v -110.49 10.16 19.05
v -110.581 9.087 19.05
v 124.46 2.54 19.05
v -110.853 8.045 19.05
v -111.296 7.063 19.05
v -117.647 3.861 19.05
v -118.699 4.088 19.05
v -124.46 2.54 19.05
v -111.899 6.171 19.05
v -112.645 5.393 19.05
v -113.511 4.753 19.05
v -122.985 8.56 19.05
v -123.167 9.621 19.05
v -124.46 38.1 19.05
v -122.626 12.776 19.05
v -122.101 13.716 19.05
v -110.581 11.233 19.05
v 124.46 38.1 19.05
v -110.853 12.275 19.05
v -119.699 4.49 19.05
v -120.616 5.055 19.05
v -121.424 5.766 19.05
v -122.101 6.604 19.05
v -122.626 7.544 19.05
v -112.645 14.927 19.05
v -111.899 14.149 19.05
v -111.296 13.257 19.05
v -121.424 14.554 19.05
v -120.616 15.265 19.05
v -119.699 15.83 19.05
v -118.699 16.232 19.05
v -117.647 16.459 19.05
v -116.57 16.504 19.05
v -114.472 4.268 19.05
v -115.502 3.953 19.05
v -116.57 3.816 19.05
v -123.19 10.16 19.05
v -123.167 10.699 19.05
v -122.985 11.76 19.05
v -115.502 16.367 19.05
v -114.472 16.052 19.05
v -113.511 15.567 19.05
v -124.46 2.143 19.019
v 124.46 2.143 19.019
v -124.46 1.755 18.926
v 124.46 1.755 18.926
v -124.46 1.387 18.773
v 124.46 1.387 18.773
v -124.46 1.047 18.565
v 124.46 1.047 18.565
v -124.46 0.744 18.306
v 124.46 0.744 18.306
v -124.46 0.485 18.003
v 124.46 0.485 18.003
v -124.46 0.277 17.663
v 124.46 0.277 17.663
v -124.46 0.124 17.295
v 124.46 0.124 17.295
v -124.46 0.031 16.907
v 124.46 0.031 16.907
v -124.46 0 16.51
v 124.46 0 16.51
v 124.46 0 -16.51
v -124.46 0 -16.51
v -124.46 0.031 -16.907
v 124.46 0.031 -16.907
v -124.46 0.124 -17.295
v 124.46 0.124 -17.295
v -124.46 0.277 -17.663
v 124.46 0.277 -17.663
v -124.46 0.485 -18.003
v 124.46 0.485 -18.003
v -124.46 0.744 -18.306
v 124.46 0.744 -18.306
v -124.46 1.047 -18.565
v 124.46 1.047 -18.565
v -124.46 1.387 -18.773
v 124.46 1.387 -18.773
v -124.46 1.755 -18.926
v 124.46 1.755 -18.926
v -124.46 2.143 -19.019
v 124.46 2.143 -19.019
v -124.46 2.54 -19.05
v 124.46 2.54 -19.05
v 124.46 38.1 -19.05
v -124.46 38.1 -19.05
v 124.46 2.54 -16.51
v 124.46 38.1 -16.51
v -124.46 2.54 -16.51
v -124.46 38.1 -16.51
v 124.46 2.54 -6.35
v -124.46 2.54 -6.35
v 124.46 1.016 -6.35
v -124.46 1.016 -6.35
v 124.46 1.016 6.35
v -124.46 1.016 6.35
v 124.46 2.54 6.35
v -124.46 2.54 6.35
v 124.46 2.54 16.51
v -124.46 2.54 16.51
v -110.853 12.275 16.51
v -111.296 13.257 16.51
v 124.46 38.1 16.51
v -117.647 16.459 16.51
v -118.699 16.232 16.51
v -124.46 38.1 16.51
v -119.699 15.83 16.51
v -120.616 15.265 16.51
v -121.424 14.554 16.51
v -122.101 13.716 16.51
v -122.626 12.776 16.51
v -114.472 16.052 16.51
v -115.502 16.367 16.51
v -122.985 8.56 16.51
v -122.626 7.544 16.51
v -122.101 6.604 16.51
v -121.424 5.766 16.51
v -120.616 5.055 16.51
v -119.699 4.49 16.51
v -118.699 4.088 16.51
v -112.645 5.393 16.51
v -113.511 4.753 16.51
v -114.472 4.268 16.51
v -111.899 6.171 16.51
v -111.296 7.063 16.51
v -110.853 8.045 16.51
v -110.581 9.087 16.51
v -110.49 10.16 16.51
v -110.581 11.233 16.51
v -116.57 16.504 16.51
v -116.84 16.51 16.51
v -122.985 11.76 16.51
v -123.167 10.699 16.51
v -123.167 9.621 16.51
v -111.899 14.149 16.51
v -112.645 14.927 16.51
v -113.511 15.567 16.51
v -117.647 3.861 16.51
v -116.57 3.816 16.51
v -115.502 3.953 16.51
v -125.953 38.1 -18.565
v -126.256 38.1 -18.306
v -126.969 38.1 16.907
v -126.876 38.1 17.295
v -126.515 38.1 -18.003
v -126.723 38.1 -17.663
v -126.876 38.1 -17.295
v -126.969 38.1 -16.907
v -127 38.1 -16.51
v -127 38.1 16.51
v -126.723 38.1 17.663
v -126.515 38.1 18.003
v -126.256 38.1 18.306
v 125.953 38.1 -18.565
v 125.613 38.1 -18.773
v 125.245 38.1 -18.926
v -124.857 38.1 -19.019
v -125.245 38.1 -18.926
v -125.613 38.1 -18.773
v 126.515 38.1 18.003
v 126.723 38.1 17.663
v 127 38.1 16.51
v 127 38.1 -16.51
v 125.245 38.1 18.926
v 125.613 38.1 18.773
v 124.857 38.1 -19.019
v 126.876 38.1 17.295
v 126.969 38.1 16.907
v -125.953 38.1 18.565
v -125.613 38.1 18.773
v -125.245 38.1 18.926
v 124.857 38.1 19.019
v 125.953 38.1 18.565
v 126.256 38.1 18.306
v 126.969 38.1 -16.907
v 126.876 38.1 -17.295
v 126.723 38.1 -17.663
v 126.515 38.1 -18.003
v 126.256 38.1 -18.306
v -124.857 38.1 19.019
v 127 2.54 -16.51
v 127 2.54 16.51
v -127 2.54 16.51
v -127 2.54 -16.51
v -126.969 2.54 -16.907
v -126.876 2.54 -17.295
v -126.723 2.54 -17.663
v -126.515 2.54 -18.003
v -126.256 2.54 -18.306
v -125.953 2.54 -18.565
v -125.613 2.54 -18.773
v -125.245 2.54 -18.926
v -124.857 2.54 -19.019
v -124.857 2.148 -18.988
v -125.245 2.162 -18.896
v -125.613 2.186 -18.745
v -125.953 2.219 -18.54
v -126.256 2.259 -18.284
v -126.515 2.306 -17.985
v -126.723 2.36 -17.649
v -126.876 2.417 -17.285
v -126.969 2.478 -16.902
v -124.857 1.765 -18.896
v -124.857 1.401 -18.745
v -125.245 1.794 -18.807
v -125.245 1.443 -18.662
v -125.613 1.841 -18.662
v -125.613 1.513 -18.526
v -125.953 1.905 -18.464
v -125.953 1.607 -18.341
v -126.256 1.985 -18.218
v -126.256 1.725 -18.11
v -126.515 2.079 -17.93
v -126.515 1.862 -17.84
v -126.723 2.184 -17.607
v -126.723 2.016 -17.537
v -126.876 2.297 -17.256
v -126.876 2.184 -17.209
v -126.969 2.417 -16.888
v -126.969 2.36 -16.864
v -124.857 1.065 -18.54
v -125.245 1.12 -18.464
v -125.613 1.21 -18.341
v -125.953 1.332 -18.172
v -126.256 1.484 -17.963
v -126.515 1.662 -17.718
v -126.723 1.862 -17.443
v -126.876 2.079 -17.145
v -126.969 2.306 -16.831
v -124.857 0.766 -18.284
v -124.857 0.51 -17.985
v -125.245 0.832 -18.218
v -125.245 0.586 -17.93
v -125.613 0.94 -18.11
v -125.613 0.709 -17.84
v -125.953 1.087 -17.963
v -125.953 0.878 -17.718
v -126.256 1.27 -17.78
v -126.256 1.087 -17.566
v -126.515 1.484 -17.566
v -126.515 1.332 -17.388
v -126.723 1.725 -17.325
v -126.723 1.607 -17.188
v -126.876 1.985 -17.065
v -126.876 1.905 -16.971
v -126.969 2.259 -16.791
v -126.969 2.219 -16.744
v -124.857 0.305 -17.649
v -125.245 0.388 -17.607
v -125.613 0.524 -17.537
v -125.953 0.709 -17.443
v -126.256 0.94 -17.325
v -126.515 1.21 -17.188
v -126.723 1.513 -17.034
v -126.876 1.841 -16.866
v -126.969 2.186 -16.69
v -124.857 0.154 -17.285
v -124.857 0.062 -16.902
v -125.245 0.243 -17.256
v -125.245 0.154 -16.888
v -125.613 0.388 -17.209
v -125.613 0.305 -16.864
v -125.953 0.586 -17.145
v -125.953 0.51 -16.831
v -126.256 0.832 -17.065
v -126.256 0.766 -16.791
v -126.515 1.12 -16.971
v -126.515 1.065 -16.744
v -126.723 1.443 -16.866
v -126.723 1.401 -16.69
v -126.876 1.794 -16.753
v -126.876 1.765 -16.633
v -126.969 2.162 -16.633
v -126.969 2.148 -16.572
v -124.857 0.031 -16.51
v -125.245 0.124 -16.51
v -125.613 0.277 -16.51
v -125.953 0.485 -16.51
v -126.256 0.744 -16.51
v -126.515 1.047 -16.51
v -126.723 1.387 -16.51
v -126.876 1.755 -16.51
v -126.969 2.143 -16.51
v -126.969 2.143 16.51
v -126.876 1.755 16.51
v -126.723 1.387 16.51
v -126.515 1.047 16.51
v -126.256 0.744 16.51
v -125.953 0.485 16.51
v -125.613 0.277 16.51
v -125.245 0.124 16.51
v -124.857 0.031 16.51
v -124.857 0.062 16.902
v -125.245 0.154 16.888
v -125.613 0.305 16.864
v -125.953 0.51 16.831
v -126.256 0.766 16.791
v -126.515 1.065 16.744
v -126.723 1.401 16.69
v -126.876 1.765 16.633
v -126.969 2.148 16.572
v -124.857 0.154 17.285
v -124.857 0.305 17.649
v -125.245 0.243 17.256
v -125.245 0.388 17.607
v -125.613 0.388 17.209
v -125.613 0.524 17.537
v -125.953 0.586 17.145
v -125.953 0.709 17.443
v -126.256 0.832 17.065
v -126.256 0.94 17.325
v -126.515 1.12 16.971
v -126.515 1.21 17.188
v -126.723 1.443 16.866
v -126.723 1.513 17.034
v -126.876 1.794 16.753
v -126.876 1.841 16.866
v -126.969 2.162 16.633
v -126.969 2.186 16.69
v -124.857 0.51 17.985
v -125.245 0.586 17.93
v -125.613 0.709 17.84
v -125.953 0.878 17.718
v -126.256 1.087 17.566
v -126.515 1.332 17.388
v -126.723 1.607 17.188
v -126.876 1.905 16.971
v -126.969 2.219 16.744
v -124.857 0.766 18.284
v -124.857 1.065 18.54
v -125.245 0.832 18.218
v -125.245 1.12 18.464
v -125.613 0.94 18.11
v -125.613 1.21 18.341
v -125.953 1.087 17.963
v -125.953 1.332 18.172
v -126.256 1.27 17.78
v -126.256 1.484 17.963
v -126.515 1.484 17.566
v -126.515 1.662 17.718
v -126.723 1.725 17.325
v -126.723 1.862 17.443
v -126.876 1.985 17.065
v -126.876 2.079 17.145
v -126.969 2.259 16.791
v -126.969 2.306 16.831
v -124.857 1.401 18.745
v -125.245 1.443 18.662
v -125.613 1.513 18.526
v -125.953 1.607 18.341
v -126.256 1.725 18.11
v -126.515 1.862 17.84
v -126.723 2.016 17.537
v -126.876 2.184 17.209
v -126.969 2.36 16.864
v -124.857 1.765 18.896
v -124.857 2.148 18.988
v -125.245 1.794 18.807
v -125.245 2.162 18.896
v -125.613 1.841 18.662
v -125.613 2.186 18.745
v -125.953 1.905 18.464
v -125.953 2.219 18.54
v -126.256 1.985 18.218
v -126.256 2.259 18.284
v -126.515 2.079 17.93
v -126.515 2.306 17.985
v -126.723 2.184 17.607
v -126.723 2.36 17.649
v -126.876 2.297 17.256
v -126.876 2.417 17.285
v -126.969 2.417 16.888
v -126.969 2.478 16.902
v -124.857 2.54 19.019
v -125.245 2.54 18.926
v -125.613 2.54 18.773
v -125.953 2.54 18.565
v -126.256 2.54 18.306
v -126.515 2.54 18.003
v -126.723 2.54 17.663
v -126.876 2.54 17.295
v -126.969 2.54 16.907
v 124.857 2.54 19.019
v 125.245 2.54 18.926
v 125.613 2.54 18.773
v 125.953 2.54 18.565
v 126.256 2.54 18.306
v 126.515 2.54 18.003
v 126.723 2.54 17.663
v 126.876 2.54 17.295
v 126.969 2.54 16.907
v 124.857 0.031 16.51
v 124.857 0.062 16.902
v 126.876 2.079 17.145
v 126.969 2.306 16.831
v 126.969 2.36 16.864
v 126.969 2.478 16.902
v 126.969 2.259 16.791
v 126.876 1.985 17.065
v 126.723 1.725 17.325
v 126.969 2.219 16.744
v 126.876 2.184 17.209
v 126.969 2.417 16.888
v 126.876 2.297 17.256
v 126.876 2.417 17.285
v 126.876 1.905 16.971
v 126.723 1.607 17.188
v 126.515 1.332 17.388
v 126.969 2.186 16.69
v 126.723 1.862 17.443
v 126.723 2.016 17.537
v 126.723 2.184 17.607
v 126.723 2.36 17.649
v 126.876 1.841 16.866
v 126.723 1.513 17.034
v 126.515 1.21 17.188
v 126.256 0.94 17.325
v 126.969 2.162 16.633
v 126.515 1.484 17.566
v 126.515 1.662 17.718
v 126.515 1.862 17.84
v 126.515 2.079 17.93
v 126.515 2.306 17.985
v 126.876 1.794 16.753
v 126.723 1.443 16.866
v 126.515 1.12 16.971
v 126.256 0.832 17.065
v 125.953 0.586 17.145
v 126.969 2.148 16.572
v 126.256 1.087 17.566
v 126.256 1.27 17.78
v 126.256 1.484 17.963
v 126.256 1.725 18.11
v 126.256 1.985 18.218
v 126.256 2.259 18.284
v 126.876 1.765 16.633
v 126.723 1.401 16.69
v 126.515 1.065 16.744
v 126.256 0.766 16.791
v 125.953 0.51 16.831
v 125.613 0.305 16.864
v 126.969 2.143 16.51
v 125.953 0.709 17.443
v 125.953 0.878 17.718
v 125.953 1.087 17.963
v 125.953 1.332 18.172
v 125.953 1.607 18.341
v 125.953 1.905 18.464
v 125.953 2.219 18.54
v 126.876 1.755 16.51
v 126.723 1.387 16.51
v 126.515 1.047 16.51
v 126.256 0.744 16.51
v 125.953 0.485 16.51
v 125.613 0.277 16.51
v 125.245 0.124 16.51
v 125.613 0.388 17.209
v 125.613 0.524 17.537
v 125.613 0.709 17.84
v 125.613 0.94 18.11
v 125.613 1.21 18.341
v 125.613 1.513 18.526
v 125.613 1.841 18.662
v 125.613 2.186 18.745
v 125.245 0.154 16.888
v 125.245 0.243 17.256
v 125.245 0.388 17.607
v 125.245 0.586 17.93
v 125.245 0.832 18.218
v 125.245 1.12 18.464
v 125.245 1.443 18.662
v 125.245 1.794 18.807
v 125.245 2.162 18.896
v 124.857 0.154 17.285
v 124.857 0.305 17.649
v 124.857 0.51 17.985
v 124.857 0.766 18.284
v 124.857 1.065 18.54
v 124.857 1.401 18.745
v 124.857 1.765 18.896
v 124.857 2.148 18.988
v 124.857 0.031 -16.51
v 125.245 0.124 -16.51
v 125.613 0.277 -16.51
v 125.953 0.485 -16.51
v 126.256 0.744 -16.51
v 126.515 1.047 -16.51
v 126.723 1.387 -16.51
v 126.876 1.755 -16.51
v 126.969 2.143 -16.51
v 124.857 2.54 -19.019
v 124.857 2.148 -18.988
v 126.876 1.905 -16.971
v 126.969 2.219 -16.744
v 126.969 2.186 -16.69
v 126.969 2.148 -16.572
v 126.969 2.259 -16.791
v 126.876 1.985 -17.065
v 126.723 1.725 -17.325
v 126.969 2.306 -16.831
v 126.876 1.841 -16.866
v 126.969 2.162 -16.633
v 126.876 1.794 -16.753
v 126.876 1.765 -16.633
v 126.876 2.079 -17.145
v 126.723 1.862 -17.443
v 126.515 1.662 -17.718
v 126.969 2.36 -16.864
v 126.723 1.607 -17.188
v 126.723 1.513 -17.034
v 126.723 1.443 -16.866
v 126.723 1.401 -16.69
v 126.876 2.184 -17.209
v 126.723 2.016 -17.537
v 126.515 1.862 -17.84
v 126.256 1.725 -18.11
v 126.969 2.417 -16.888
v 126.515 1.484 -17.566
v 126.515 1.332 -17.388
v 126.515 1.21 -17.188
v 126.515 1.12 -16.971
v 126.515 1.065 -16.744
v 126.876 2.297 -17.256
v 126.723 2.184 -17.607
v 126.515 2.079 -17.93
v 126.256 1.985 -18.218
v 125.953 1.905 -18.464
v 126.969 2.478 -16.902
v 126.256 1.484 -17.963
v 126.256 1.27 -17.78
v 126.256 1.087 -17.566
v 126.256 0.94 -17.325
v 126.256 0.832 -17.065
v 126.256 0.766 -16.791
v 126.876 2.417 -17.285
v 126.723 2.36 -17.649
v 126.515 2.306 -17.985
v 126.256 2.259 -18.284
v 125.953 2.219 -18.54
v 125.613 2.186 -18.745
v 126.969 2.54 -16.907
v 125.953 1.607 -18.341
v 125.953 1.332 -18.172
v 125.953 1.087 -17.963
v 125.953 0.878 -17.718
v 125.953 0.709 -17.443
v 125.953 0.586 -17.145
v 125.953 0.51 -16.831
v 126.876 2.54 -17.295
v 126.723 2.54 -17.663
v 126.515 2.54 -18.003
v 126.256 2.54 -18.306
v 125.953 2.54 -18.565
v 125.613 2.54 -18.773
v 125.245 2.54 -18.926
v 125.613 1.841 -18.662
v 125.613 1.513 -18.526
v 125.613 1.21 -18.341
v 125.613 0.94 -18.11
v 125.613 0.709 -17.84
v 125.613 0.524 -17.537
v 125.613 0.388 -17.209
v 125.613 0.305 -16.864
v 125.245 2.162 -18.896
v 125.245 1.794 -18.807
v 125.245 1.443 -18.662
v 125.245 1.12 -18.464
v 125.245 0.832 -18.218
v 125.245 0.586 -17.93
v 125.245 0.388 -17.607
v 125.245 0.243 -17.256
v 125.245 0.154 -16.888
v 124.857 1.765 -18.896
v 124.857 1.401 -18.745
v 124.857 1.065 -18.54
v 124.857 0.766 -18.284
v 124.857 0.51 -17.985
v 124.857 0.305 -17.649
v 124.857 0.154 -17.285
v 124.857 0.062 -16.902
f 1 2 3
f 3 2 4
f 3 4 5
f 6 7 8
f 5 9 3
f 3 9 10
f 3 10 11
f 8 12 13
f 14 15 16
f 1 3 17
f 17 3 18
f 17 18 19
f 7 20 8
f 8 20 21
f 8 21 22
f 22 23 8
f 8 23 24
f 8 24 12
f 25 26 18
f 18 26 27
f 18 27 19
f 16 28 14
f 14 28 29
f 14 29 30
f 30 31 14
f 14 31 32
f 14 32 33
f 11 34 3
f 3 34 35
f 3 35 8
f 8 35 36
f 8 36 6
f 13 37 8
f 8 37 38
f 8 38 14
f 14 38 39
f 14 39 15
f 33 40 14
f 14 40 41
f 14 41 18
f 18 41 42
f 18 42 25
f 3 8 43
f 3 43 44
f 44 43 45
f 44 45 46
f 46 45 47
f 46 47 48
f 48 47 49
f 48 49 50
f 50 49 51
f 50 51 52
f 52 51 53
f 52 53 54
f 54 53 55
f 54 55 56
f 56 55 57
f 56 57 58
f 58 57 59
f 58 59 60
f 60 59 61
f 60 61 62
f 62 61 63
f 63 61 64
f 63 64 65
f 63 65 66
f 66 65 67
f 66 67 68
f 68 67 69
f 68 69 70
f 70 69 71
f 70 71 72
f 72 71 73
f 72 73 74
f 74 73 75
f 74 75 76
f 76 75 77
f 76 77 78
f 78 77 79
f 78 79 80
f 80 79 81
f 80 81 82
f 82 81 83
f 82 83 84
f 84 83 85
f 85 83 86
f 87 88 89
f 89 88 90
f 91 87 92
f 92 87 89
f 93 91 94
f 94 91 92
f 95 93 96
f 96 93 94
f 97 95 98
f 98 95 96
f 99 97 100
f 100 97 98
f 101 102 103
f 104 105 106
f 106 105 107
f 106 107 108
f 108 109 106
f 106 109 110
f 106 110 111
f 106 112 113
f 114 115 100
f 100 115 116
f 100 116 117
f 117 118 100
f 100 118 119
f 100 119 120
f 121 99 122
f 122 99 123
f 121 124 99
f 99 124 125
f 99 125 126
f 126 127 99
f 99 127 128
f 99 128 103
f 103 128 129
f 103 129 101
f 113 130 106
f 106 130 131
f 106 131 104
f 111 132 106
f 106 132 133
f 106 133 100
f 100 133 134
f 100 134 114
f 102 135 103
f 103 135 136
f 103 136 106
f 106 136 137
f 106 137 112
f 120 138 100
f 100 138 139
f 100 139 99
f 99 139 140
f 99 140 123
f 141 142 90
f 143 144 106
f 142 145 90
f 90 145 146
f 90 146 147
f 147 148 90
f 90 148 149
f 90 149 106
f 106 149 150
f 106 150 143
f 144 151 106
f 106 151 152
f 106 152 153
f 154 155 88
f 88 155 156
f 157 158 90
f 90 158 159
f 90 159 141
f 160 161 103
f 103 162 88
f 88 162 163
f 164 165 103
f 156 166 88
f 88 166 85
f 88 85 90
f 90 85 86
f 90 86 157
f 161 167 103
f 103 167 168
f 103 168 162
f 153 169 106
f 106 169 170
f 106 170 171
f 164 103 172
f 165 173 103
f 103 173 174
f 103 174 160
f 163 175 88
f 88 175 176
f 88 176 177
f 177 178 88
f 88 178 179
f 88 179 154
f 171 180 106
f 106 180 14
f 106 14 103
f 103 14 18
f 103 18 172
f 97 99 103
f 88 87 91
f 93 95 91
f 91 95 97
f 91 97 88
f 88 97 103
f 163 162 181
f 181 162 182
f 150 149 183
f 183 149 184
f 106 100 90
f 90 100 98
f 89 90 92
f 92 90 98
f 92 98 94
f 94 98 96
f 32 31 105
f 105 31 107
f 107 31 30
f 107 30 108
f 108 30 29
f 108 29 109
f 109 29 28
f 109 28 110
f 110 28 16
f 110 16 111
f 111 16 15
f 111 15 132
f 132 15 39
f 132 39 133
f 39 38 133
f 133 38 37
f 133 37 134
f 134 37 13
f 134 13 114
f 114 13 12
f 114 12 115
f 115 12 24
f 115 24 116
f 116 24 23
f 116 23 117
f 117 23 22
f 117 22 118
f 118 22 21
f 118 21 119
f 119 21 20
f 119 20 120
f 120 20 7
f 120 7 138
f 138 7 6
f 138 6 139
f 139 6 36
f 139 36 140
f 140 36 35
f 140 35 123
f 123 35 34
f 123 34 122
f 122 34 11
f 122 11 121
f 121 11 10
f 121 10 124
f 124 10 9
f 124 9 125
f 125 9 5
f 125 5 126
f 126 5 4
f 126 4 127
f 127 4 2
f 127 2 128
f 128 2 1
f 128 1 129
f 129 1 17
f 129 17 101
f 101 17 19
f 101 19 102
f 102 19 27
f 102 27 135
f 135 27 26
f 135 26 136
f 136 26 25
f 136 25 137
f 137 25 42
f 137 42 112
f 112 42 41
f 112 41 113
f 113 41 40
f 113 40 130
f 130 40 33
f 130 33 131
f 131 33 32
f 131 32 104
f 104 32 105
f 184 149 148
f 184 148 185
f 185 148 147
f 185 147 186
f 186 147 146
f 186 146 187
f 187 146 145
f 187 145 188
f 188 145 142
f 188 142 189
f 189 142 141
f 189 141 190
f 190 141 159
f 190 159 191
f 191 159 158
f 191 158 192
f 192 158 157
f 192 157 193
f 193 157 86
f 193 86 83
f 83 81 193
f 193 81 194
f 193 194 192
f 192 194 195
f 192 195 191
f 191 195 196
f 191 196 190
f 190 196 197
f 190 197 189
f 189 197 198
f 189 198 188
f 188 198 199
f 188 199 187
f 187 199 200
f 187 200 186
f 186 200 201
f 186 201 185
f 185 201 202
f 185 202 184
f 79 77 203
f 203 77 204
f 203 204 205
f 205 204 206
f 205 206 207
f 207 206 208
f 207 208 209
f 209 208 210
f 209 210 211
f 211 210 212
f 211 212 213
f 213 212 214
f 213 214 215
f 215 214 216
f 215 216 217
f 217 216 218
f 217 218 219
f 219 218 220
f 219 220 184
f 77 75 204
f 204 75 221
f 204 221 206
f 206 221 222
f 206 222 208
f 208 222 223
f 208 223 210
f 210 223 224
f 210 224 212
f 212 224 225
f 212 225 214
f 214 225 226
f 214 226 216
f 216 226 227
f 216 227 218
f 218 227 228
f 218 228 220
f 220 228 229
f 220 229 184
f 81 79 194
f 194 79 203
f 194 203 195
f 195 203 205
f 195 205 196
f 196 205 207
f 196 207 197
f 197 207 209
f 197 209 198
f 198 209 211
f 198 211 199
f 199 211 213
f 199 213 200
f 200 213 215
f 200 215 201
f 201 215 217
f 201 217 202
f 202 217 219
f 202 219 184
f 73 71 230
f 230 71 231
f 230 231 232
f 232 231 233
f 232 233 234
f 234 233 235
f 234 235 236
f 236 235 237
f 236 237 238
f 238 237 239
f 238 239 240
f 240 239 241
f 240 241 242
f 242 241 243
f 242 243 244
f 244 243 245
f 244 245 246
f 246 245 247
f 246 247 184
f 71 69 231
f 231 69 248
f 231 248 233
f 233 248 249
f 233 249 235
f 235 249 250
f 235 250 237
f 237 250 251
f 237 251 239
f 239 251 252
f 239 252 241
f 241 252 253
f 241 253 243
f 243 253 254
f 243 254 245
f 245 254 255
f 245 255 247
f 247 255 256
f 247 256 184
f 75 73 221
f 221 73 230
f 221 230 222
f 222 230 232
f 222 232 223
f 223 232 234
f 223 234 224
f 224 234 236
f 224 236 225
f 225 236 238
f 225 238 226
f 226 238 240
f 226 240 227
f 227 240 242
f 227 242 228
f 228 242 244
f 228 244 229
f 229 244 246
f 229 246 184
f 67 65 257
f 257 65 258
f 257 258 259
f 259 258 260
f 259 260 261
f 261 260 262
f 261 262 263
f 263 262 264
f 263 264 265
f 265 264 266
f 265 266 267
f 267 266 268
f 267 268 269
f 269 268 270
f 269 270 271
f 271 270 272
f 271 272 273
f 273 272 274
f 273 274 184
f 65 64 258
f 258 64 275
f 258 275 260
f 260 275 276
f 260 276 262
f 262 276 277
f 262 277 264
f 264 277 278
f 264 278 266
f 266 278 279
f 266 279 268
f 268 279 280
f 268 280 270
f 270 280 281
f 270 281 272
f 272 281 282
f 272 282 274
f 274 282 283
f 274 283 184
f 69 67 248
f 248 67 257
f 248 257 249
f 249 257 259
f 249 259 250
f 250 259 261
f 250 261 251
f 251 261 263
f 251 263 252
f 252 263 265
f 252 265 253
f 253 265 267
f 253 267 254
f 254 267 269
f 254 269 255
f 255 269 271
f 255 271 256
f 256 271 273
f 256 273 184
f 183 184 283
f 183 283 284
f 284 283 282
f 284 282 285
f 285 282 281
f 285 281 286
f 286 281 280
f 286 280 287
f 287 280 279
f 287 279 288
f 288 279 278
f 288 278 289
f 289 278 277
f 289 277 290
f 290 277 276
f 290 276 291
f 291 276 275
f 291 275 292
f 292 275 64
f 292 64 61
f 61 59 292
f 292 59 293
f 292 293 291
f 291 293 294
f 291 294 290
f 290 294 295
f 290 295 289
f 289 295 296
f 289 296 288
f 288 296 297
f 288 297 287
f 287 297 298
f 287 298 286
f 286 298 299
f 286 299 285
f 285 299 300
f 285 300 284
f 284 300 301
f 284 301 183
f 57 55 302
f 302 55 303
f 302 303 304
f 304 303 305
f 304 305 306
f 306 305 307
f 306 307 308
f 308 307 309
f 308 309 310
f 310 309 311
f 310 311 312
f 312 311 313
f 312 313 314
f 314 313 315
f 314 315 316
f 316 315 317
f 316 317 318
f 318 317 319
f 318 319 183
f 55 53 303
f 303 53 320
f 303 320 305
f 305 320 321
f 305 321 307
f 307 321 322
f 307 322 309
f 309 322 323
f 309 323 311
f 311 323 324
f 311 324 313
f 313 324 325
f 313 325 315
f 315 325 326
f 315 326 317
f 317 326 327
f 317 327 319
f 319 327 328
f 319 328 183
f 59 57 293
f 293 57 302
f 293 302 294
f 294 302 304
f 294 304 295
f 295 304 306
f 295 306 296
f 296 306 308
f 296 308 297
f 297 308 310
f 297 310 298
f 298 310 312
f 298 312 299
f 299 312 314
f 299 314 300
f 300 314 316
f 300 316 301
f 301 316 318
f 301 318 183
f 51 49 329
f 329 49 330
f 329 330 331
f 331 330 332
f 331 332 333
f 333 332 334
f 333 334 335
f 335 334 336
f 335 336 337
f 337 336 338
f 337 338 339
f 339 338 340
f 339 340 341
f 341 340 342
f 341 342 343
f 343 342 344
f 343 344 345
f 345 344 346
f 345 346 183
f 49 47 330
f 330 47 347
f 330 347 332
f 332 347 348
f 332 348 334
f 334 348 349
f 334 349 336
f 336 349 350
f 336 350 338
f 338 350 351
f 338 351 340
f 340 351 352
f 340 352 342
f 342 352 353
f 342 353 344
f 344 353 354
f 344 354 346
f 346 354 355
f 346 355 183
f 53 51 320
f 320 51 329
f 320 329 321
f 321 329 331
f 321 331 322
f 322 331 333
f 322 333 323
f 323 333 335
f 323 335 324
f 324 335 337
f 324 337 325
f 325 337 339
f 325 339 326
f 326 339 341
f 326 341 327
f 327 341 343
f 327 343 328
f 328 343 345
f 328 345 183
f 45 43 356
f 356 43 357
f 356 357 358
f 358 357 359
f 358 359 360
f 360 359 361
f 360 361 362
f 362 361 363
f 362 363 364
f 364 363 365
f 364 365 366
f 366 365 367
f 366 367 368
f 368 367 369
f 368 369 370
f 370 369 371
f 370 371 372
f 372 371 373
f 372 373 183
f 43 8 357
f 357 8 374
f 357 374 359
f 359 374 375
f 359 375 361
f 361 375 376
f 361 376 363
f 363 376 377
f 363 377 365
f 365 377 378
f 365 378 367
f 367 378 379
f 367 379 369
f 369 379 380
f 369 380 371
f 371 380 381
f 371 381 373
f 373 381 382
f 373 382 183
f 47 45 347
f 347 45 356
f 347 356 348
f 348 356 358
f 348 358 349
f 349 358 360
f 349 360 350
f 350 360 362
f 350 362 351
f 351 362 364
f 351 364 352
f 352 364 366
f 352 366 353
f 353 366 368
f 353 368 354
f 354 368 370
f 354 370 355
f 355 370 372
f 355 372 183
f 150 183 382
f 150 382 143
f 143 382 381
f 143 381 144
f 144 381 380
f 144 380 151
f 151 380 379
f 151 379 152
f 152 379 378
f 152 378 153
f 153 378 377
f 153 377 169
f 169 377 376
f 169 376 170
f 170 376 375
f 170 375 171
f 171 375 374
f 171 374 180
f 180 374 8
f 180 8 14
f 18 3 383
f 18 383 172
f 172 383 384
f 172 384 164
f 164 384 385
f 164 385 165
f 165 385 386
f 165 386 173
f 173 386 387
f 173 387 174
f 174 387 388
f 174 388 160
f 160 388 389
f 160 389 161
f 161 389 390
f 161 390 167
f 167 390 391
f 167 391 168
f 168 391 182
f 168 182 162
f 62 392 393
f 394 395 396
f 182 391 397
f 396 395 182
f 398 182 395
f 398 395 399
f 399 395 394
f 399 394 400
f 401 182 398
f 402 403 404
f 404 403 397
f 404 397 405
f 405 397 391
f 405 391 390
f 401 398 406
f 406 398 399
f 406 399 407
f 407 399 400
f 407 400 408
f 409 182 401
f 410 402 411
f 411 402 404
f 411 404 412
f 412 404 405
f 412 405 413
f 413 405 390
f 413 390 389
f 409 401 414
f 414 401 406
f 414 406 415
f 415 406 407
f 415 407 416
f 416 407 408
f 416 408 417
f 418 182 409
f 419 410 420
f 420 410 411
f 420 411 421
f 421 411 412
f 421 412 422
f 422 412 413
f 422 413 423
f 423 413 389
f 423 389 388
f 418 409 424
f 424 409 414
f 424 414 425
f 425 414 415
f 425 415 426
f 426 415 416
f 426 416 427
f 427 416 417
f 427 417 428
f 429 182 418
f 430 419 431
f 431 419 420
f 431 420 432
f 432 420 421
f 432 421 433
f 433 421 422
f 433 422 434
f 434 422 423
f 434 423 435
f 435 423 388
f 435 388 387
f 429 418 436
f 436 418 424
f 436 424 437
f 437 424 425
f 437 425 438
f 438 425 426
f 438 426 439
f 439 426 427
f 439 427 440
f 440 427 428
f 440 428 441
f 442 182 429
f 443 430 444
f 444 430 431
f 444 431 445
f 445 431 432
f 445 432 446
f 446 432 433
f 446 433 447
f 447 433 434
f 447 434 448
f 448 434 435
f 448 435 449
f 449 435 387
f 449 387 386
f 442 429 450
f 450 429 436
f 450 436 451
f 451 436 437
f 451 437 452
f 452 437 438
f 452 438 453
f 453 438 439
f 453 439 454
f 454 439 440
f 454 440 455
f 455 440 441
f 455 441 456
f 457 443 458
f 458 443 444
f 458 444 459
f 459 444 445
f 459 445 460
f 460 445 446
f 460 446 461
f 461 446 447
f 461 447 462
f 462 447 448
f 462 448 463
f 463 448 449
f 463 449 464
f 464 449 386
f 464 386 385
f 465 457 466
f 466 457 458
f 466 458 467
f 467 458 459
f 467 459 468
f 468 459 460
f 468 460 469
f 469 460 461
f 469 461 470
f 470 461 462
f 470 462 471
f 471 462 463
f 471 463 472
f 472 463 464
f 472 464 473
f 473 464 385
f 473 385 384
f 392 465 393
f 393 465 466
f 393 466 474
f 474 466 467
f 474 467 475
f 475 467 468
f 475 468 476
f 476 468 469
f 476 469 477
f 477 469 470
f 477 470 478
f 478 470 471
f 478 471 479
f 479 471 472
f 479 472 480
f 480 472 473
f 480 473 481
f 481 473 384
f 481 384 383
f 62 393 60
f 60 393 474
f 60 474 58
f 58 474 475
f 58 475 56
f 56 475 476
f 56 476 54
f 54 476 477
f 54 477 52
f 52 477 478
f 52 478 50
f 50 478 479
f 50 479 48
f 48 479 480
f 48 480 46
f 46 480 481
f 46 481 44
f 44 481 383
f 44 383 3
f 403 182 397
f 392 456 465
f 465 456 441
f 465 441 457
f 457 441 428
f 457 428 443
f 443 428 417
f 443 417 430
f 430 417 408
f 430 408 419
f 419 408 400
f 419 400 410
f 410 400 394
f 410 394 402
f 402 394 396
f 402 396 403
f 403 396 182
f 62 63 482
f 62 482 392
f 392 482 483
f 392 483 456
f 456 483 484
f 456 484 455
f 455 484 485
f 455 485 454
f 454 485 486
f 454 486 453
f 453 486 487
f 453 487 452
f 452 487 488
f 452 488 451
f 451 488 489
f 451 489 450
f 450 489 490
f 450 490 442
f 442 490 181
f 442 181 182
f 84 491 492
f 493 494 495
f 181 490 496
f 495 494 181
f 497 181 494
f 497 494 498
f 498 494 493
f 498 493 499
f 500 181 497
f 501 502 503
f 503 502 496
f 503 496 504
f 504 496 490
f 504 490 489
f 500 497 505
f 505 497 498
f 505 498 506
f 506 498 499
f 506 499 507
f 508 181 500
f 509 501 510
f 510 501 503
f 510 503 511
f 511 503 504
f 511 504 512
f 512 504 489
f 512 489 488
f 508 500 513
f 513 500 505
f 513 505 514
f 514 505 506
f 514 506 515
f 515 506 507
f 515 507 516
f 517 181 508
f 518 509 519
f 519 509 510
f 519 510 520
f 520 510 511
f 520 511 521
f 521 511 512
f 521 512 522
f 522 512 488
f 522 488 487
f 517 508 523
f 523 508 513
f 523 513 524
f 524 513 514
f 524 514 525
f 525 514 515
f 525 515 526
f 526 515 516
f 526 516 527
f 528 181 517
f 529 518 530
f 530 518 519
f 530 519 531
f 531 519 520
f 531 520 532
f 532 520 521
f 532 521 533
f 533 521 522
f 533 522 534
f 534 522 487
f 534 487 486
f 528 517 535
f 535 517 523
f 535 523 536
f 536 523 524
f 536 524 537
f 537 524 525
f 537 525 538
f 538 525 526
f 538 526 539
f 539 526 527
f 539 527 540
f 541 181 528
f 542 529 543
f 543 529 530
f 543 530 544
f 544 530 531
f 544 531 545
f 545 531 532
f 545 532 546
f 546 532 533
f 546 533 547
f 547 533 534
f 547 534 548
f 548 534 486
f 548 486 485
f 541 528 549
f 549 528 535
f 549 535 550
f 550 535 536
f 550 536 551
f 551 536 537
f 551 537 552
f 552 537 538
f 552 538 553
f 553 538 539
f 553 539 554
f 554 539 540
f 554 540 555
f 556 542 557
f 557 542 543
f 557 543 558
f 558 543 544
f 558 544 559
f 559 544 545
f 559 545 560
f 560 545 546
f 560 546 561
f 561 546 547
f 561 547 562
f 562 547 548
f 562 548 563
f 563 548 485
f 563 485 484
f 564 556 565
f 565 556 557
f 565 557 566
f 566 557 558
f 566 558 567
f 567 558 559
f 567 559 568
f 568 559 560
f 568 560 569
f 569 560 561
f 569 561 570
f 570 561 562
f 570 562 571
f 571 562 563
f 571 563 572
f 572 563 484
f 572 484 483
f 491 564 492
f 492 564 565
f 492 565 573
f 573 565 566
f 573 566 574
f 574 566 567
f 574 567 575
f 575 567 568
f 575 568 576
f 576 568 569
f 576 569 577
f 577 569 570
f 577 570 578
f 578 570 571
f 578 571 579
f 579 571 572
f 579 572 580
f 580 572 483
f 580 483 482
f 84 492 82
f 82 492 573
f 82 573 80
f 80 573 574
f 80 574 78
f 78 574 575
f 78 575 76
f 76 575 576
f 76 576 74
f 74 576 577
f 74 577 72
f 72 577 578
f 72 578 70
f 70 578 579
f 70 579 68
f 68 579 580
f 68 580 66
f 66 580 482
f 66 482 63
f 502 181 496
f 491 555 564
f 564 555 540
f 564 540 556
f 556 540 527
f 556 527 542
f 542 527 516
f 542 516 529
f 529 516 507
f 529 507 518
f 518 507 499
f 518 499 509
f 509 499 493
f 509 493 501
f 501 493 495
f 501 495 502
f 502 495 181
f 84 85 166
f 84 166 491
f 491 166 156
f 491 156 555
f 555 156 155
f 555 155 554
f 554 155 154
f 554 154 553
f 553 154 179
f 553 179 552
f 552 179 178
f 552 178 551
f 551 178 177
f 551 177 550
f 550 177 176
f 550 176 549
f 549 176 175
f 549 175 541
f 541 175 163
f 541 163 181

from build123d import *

# Parameters (mm, degrees)
BOSS_EXTRUDE1_DEPTH = 124.46
BOSS_EXTRUDE2_START = 127
BOSS_EXTRUDE2_DEPTH = 2.54
BOSS_EXTRUDE3_START = -124.46
BOSS_EXTRUDE3_DEPTH = 2.54
CUT_EXTRUDE1_START  = 19.05
SKETCH4_R           = 6.35
CUT_EXTRUDE1_DEPTH  = 2.54
FILLET1_R           = 2.54
FILLET2_R           = 2.54


with BuildPart() as part:
    # Sketch1 → Boss-Extrude1 (new, symmetric)
    with BuildSketch(Plane(origin=(0, 0, 0), x_dir=(0, 0, -1), z_dir=(1, 0, 0))):
        with BuildLine():
            Line((-16.51, 38.1), (-19.05, 38.1))
            Line((-19.05, 38.1), (-19.05, 2.54))
            ThreePointArc((-19.05, 2.54), (-18.306051224, 0.743948776), (-16.51, 0))
            Line((-16.51, 0), (0, 0))
            Line((0, 0), (0, 1.016))
            Line((0, 1.016), (-6.35, 1.016))
            Line((-6.35, 1.016), (-6.35, 2.54))
            Line((-6.35, 2.54), (-16.51, 2.54))
            Line((-16.51, 2.54), (-16.51, 38.1))
        make_face()
        with BuildLine():
            Line((0, 1.016), (0, 0))
            Line((0, 0), (16.51, 0))
            ThreePointArc((16.51, 0), (18.306051224, 0.743948776), (19.05, 2.54))
            Line((19.05, 2.54), (19.05, 38.1))
            Line((19.05, 38.1), (16.51, 38.1))
            Line((16.51, 38.1), (16.51, 2.54))
            Line((16.51, 2.54), (6.35, 2.54))
            Line((6.35, 2.54), (6.35, 1.016))
            Line((6.35, 1.016), (0, 1.016))
        make_face()
    extrude(amount=BOSS_EXTRUDE1_DEPTH, both=True)

    # Sketch3 → Boss-Extrude2 (add)
    with BuildSketch(Plane(origin=(0, 0, 0), x_dir=(0, 0, -1), z_dir=(1, 0, 0)).offset(BOSS_EXTRUDE2_START)):
        with BuildLine():
            Line((0, 38.1), (-19.05, 38.1))
            Line((-19.05, 38.1), (-19.05, 2.54))
            ThreePointArc((-19.05, 2.54), (-18.306051224, 0.743948776), (-16.51, 0))
            Line((-16.51, 0), (0, 0))
            Line((0, 0), (0, 38.1))
        make_face()
        with BuildLine():
            Line((19.05, 38.1), (0, 38.1))
            Line((0, 38.1), (0, 0))
            Line((0, 0), (16.51, 0))
            ThreePointArc((16.51, 0), (18.306051224, 0.743948776), (19.05, 2.54))
            Line((19.05, 2.54), (19.05, 38.1))
        make_face()
    extrude(amount=-BOSS_EXTRUDE2_DEPTH)

    # Sketch3<4> → Boss-Extrude3 (add)
    with BuildSketch(Plane(origin=(0, 0, 0), x_dir=(0, 0, -1), z_dir=(1, 0, 0)).offset(BOSS_EXTRUDE3_START)):
        with BuildLine():
            Line((0, 38.1), (-19.05, 38.1))
            Line((-19.05, 38.1), (-19.05, 2.54))
            ThreePointArc((-19.05, 2.54), (-18.306051224, 0.743948776), (-16.51, 0))
            Line((-16.51, 0), (0, 0))
            Line((0, 0), (0, 38.1))
        make_face()
        with BuildLine():
            Line((19.05, 38.1), (0, 38.1))
            Line((0, 38.1), (0, 0))
            Line((0, 0), (16.51, 0))
            ThreePointArc((16.51, 0), (18.306051224, 0.743948776), (19.05, 2.54))
            Line((19.05, 2.54), (19.05, 38.1))
        make_face()
    extrude(amount=-BOSS_EXTRUDE3_DEPTH)

    # Sketch4 → Cut-Extrude1 (cut)
    with BuildSketch(Plane.XY.offset(CUT_EXTRUDE1_START)):
        with Locations((-116.84, 10.16)):
            Circle(SKETCH4_R)
    extrude(amount=-CUT_EXTRUDE1_DEPTH, mode=Mode.SUBTRACT)

    # Fillet1
    fillet1_edges = [part.edges().sort_by_distance(p)[0] for p in [
        (-127, 0.743948776, -18.306051224),
        (-127, 0, 0),
        (-127, 0.743948776, 18.306051224),
        (-127, 20.32, 19.05),
        (-127, 20.32, -19.05),
    ]]
    fillet(fillet1_edges, radius=FILLET1_R)

    # Fillet2
    fillet2_edges = [part.edges().sort_by_distance(p)[0] for p in [
        (127, 0, 0),
        (127, 20.32, 19.05),
        (127, 0.743948776, -18.306051224),
        (127, 20.32, -19.05),
        (127, 0.743948776, 18.306051224),
    ]]
    fillet(fillet2_edges, radius=FILLET2_R)


solid = part.part
